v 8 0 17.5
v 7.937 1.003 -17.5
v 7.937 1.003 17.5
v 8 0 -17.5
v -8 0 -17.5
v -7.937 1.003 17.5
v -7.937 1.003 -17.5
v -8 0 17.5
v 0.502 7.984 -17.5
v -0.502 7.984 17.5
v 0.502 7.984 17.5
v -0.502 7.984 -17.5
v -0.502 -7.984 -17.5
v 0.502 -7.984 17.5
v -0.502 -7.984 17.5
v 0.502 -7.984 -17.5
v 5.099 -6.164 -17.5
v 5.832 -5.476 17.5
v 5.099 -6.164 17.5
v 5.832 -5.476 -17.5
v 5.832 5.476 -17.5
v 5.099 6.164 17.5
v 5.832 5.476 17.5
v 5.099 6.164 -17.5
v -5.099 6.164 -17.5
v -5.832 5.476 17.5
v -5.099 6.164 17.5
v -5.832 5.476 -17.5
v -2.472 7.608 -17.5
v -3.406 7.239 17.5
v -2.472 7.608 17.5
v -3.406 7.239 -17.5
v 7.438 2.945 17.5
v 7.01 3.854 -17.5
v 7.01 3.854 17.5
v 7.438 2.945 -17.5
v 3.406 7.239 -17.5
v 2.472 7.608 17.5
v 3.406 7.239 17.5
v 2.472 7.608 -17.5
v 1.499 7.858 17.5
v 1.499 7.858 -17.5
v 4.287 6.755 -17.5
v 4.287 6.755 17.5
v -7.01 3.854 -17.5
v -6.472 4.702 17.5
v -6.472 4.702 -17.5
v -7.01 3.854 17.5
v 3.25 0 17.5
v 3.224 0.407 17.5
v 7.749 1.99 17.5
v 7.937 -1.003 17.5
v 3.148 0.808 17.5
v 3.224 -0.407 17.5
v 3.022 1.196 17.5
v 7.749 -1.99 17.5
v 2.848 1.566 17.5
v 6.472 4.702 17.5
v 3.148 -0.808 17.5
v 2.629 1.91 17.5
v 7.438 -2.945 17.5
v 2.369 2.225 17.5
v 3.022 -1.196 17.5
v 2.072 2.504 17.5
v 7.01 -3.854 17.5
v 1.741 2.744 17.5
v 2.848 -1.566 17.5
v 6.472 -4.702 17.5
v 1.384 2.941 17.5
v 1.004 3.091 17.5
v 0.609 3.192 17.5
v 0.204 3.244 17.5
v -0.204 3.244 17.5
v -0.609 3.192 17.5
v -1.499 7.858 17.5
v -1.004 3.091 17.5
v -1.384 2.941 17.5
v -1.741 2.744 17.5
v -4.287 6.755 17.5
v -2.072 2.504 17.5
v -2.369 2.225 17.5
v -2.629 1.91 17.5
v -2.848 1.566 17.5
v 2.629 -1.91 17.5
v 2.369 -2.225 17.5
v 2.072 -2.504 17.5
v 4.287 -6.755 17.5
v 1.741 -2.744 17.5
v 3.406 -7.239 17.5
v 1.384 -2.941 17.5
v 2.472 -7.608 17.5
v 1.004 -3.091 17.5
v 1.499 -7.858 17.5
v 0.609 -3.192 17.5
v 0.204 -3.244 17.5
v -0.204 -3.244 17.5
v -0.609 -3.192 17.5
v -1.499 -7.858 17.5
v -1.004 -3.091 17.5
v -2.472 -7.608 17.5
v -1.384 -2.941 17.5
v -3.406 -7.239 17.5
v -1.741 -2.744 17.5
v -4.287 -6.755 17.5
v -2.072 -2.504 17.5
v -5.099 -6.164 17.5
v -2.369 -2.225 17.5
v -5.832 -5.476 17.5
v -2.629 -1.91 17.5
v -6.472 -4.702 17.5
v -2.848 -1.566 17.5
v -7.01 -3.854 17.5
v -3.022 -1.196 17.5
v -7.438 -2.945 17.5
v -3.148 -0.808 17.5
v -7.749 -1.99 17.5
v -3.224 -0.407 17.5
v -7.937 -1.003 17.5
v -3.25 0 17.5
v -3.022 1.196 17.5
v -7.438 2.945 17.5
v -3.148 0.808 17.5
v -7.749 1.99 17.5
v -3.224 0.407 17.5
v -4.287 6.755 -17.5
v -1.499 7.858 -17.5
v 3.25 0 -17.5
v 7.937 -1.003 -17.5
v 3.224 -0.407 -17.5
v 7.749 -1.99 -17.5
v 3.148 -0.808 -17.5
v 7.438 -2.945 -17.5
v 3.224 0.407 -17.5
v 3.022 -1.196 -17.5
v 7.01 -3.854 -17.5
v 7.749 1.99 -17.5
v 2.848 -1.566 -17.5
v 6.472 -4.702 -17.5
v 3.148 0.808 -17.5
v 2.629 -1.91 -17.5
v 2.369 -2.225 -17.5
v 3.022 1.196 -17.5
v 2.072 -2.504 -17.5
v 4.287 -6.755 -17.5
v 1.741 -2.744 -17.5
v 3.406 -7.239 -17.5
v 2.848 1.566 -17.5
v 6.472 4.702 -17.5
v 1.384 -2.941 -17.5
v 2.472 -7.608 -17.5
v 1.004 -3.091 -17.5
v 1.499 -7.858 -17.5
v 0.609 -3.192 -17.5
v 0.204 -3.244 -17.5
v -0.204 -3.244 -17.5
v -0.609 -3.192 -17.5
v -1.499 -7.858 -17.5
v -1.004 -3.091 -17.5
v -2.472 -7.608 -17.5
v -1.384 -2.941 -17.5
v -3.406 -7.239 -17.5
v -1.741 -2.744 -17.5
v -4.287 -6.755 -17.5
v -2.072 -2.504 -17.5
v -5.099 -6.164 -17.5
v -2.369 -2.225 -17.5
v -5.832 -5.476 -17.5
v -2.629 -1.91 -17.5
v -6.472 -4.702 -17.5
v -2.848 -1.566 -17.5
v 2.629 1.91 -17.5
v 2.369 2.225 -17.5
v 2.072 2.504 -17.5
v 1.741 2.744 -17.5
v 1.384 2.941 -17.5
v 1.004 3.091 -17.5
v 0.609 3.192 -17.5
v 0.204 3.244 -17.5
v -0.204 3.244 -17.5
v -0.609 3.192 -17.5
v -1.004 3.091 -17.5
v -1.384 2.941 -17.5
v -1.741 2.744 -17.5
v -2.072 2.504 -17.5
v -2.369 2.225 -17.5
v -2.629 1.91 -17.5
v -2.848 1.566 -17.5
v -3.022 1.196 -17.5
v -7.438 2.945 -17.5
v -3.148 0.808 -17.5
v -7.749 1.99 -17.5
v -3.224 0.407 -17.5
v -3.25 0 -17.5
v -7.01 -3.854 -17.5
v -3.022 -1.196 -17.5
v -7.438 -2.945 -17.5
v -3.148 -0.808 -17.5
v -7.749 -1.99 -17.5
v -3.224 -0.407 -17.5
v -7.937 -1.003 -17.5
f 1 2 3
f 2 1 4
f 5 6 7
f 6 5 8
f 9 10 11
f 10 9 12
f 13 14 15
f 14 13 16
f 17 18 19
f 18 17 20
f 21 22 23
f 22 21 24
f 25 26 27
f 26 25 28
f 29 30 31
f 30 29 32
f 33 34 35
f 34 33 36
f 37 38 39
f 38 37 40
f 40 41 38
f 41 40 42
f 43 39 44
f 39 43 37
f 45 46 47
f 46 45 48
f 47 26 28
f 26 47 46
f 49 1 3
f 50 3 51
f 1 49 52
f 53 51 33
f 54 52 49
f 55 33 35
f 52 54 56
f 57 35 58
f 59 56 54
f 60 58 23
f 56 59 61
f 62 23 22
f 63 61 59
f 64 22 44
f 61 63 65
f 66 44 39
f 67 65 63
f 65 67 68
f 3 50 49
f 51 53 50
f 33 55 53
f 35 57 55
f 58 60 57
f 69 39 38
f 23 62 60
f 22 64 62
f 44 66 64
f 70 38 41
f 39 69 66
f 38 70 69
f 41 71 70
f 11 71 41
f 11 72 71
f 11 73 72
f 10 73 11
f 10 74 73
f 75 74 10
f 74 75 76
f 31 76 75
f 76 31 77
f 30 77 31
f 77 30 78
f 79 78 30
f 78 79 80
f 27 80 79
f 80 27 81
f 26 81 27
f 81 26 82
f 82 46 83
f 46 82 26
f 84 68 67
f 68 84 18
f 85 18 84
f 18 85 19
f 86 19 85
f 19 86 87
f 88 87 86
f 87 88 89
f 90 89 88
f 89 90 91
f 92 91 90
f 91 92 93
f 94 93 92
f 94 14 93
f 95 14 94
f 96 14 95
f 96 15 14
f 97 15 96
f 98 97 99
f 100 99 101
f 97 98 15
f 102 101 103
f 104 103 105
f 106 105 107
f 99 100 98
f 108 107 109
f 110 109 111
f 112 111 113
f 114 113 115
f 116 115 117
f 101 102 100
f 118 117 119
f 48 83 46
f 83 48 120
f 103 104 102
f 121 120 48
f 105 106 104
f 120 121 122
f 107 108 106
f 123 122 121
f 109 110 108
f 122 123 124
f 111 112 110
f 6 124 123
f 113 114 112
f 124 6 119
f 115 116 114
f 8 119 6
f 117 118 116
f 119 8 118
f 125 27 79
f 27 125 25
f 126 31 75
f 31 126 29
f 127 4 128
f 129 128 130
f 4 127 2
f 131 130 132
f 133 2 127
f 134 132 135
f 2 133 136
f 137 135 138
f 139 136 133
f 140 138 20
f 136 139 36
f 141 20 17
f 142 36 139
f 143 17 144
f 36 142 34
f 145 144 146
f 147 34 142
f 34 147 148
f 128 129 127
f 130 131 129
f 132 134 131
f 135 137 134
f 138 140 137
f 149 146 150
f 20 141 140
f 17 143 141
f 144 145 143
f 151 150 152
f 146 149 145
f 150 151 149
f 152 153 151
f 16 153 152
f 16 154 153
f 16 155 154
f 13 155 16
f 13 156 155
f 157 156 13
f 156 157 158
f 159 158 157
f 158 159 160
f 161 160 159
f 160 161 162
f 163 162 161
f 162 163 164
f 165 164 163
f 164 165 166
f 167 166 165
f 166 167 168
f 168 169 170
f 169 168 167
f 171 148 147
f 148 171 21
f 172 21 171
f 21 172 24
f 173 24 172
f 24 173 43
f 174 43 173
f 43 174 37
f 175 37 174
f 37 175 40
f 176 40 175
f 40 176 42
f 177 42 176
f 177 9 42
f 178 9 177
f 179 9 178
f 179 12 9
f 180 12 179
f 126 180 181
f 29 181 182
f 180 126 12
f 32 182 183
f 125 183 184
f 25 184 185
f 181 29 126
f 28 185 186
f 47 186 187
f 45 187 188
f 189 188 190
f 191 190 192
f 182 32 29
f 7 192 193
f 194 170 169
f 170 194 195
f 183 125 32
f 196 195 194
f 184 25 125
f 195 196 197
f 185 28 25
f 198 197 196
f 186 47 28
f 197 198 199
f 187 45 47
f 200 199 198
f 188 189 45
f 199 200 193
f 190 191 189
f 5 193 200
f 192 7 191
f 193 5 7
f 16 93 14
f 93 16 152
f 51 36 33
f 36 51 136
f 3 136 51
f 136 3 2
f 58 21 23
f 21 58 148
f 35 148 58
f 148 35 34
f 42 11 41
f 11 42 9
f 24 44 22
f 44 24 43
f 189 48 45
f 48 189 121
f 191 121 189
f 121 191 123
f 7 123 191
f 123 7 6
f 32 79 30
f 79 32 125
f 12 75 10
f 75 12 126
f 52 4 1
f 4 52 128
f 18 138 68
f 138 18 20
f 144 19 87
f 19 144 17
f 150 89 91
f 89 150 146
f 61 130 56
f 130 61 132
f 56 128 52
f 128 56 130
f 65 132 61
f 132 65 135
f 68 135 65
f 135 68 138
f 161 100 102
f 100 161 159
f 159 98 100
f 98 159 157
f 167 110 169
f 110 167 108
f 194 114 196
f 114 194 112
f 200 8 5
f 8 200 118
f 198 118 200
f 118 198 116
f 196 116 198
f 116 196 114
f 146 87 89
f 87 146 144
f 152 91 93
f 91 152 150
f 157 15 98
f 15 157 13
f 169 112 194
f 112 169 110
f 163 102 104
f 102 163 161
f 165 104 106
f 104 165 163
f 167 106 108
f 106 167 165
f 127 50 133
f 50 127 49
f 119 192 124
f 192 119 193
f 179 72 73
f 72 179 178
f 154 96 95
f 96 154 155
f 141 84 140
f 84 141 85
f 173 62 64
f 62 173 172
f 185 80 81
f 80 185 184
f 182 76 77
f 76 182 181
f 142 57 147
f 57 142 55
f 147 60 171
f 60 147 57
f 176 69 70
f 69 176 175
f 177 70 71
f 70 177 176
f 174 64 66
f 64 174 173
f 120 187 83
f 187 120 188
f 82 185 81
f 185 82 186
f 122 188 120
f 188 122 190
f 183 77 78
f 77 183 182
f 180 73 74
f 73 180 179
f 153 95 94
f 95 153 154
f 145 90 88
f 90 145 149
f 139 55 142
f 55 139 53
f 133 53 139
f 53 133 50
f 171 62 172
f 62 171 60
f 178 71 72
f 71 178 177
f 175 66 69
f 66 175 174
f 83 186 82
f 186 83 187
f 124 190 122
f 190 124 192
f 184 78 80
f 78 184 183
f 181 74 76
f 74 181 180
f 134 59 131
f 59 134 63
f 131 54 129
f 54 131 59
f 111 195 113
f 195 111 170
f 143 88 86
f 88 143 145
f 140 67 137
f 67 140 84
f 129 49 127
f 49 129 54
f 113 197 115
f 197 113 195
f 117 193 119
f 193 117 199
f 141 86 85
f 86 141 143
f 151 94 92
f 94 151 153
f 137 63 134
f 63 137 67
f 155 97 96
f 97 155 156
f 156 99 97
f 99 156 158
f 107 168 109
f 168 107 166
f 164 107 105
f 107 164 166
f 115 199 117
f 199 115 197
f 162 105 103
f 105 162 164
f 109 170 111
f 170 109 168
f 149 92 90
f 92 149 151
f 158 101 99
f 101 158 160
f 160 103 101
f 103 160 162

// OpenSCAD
$fn = 50;


difference() {
	union() {
		translate(v = [0, 0, -17.5000000000]) {
			cylinder(h = 35, r = 8.0000000000);
		}
	}
	union() {
		translate(v = [0, 0, -100.0000000000]) {
			cylinder(h = 200, r = 3.2500000000);
		}
	}
}
